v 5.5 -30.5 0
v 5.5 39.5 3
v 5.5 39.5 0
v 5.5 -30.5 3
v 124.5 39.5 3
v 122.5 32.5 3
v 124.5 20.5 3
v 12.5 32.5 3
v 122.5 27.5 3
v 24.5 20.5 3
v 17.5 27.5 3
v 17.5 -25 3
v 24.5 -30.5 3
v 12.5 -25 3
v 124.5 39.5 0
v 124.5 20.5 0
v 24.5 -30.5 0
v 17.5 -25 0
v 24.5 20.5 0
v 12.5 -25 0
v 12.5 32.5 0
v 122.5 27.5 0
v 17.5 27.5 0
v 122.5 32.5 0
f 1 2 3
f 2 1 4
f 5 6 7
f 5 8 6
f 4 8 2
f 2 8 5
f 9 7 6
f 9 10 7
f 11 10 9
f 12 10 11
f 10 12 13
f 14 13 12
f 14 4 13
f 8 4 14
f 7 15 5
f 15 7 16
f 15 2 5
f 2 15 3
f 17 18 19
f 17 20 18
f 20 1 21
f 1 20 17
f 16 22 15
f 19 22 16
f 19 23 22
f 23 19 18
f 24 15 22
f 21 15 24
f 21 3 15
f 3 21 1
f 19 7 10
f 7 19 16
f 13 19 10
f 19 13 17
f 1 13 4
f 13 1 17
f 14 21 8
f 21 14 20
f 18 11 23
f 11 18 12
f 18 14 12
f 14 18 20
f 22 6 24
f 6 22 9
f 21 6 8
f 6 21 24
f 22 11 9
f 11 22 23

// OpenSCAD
difference(){
union(){
translate([5.5,20.5,0])cube([119,19,3]);
translate([5.5,-30.5,0])cube([19,55,3]);
}
translate([12.5,-25,-1])cube([5,55,8]);
translate([12.5,27.5,-1])cube([110,5,8]);
}
